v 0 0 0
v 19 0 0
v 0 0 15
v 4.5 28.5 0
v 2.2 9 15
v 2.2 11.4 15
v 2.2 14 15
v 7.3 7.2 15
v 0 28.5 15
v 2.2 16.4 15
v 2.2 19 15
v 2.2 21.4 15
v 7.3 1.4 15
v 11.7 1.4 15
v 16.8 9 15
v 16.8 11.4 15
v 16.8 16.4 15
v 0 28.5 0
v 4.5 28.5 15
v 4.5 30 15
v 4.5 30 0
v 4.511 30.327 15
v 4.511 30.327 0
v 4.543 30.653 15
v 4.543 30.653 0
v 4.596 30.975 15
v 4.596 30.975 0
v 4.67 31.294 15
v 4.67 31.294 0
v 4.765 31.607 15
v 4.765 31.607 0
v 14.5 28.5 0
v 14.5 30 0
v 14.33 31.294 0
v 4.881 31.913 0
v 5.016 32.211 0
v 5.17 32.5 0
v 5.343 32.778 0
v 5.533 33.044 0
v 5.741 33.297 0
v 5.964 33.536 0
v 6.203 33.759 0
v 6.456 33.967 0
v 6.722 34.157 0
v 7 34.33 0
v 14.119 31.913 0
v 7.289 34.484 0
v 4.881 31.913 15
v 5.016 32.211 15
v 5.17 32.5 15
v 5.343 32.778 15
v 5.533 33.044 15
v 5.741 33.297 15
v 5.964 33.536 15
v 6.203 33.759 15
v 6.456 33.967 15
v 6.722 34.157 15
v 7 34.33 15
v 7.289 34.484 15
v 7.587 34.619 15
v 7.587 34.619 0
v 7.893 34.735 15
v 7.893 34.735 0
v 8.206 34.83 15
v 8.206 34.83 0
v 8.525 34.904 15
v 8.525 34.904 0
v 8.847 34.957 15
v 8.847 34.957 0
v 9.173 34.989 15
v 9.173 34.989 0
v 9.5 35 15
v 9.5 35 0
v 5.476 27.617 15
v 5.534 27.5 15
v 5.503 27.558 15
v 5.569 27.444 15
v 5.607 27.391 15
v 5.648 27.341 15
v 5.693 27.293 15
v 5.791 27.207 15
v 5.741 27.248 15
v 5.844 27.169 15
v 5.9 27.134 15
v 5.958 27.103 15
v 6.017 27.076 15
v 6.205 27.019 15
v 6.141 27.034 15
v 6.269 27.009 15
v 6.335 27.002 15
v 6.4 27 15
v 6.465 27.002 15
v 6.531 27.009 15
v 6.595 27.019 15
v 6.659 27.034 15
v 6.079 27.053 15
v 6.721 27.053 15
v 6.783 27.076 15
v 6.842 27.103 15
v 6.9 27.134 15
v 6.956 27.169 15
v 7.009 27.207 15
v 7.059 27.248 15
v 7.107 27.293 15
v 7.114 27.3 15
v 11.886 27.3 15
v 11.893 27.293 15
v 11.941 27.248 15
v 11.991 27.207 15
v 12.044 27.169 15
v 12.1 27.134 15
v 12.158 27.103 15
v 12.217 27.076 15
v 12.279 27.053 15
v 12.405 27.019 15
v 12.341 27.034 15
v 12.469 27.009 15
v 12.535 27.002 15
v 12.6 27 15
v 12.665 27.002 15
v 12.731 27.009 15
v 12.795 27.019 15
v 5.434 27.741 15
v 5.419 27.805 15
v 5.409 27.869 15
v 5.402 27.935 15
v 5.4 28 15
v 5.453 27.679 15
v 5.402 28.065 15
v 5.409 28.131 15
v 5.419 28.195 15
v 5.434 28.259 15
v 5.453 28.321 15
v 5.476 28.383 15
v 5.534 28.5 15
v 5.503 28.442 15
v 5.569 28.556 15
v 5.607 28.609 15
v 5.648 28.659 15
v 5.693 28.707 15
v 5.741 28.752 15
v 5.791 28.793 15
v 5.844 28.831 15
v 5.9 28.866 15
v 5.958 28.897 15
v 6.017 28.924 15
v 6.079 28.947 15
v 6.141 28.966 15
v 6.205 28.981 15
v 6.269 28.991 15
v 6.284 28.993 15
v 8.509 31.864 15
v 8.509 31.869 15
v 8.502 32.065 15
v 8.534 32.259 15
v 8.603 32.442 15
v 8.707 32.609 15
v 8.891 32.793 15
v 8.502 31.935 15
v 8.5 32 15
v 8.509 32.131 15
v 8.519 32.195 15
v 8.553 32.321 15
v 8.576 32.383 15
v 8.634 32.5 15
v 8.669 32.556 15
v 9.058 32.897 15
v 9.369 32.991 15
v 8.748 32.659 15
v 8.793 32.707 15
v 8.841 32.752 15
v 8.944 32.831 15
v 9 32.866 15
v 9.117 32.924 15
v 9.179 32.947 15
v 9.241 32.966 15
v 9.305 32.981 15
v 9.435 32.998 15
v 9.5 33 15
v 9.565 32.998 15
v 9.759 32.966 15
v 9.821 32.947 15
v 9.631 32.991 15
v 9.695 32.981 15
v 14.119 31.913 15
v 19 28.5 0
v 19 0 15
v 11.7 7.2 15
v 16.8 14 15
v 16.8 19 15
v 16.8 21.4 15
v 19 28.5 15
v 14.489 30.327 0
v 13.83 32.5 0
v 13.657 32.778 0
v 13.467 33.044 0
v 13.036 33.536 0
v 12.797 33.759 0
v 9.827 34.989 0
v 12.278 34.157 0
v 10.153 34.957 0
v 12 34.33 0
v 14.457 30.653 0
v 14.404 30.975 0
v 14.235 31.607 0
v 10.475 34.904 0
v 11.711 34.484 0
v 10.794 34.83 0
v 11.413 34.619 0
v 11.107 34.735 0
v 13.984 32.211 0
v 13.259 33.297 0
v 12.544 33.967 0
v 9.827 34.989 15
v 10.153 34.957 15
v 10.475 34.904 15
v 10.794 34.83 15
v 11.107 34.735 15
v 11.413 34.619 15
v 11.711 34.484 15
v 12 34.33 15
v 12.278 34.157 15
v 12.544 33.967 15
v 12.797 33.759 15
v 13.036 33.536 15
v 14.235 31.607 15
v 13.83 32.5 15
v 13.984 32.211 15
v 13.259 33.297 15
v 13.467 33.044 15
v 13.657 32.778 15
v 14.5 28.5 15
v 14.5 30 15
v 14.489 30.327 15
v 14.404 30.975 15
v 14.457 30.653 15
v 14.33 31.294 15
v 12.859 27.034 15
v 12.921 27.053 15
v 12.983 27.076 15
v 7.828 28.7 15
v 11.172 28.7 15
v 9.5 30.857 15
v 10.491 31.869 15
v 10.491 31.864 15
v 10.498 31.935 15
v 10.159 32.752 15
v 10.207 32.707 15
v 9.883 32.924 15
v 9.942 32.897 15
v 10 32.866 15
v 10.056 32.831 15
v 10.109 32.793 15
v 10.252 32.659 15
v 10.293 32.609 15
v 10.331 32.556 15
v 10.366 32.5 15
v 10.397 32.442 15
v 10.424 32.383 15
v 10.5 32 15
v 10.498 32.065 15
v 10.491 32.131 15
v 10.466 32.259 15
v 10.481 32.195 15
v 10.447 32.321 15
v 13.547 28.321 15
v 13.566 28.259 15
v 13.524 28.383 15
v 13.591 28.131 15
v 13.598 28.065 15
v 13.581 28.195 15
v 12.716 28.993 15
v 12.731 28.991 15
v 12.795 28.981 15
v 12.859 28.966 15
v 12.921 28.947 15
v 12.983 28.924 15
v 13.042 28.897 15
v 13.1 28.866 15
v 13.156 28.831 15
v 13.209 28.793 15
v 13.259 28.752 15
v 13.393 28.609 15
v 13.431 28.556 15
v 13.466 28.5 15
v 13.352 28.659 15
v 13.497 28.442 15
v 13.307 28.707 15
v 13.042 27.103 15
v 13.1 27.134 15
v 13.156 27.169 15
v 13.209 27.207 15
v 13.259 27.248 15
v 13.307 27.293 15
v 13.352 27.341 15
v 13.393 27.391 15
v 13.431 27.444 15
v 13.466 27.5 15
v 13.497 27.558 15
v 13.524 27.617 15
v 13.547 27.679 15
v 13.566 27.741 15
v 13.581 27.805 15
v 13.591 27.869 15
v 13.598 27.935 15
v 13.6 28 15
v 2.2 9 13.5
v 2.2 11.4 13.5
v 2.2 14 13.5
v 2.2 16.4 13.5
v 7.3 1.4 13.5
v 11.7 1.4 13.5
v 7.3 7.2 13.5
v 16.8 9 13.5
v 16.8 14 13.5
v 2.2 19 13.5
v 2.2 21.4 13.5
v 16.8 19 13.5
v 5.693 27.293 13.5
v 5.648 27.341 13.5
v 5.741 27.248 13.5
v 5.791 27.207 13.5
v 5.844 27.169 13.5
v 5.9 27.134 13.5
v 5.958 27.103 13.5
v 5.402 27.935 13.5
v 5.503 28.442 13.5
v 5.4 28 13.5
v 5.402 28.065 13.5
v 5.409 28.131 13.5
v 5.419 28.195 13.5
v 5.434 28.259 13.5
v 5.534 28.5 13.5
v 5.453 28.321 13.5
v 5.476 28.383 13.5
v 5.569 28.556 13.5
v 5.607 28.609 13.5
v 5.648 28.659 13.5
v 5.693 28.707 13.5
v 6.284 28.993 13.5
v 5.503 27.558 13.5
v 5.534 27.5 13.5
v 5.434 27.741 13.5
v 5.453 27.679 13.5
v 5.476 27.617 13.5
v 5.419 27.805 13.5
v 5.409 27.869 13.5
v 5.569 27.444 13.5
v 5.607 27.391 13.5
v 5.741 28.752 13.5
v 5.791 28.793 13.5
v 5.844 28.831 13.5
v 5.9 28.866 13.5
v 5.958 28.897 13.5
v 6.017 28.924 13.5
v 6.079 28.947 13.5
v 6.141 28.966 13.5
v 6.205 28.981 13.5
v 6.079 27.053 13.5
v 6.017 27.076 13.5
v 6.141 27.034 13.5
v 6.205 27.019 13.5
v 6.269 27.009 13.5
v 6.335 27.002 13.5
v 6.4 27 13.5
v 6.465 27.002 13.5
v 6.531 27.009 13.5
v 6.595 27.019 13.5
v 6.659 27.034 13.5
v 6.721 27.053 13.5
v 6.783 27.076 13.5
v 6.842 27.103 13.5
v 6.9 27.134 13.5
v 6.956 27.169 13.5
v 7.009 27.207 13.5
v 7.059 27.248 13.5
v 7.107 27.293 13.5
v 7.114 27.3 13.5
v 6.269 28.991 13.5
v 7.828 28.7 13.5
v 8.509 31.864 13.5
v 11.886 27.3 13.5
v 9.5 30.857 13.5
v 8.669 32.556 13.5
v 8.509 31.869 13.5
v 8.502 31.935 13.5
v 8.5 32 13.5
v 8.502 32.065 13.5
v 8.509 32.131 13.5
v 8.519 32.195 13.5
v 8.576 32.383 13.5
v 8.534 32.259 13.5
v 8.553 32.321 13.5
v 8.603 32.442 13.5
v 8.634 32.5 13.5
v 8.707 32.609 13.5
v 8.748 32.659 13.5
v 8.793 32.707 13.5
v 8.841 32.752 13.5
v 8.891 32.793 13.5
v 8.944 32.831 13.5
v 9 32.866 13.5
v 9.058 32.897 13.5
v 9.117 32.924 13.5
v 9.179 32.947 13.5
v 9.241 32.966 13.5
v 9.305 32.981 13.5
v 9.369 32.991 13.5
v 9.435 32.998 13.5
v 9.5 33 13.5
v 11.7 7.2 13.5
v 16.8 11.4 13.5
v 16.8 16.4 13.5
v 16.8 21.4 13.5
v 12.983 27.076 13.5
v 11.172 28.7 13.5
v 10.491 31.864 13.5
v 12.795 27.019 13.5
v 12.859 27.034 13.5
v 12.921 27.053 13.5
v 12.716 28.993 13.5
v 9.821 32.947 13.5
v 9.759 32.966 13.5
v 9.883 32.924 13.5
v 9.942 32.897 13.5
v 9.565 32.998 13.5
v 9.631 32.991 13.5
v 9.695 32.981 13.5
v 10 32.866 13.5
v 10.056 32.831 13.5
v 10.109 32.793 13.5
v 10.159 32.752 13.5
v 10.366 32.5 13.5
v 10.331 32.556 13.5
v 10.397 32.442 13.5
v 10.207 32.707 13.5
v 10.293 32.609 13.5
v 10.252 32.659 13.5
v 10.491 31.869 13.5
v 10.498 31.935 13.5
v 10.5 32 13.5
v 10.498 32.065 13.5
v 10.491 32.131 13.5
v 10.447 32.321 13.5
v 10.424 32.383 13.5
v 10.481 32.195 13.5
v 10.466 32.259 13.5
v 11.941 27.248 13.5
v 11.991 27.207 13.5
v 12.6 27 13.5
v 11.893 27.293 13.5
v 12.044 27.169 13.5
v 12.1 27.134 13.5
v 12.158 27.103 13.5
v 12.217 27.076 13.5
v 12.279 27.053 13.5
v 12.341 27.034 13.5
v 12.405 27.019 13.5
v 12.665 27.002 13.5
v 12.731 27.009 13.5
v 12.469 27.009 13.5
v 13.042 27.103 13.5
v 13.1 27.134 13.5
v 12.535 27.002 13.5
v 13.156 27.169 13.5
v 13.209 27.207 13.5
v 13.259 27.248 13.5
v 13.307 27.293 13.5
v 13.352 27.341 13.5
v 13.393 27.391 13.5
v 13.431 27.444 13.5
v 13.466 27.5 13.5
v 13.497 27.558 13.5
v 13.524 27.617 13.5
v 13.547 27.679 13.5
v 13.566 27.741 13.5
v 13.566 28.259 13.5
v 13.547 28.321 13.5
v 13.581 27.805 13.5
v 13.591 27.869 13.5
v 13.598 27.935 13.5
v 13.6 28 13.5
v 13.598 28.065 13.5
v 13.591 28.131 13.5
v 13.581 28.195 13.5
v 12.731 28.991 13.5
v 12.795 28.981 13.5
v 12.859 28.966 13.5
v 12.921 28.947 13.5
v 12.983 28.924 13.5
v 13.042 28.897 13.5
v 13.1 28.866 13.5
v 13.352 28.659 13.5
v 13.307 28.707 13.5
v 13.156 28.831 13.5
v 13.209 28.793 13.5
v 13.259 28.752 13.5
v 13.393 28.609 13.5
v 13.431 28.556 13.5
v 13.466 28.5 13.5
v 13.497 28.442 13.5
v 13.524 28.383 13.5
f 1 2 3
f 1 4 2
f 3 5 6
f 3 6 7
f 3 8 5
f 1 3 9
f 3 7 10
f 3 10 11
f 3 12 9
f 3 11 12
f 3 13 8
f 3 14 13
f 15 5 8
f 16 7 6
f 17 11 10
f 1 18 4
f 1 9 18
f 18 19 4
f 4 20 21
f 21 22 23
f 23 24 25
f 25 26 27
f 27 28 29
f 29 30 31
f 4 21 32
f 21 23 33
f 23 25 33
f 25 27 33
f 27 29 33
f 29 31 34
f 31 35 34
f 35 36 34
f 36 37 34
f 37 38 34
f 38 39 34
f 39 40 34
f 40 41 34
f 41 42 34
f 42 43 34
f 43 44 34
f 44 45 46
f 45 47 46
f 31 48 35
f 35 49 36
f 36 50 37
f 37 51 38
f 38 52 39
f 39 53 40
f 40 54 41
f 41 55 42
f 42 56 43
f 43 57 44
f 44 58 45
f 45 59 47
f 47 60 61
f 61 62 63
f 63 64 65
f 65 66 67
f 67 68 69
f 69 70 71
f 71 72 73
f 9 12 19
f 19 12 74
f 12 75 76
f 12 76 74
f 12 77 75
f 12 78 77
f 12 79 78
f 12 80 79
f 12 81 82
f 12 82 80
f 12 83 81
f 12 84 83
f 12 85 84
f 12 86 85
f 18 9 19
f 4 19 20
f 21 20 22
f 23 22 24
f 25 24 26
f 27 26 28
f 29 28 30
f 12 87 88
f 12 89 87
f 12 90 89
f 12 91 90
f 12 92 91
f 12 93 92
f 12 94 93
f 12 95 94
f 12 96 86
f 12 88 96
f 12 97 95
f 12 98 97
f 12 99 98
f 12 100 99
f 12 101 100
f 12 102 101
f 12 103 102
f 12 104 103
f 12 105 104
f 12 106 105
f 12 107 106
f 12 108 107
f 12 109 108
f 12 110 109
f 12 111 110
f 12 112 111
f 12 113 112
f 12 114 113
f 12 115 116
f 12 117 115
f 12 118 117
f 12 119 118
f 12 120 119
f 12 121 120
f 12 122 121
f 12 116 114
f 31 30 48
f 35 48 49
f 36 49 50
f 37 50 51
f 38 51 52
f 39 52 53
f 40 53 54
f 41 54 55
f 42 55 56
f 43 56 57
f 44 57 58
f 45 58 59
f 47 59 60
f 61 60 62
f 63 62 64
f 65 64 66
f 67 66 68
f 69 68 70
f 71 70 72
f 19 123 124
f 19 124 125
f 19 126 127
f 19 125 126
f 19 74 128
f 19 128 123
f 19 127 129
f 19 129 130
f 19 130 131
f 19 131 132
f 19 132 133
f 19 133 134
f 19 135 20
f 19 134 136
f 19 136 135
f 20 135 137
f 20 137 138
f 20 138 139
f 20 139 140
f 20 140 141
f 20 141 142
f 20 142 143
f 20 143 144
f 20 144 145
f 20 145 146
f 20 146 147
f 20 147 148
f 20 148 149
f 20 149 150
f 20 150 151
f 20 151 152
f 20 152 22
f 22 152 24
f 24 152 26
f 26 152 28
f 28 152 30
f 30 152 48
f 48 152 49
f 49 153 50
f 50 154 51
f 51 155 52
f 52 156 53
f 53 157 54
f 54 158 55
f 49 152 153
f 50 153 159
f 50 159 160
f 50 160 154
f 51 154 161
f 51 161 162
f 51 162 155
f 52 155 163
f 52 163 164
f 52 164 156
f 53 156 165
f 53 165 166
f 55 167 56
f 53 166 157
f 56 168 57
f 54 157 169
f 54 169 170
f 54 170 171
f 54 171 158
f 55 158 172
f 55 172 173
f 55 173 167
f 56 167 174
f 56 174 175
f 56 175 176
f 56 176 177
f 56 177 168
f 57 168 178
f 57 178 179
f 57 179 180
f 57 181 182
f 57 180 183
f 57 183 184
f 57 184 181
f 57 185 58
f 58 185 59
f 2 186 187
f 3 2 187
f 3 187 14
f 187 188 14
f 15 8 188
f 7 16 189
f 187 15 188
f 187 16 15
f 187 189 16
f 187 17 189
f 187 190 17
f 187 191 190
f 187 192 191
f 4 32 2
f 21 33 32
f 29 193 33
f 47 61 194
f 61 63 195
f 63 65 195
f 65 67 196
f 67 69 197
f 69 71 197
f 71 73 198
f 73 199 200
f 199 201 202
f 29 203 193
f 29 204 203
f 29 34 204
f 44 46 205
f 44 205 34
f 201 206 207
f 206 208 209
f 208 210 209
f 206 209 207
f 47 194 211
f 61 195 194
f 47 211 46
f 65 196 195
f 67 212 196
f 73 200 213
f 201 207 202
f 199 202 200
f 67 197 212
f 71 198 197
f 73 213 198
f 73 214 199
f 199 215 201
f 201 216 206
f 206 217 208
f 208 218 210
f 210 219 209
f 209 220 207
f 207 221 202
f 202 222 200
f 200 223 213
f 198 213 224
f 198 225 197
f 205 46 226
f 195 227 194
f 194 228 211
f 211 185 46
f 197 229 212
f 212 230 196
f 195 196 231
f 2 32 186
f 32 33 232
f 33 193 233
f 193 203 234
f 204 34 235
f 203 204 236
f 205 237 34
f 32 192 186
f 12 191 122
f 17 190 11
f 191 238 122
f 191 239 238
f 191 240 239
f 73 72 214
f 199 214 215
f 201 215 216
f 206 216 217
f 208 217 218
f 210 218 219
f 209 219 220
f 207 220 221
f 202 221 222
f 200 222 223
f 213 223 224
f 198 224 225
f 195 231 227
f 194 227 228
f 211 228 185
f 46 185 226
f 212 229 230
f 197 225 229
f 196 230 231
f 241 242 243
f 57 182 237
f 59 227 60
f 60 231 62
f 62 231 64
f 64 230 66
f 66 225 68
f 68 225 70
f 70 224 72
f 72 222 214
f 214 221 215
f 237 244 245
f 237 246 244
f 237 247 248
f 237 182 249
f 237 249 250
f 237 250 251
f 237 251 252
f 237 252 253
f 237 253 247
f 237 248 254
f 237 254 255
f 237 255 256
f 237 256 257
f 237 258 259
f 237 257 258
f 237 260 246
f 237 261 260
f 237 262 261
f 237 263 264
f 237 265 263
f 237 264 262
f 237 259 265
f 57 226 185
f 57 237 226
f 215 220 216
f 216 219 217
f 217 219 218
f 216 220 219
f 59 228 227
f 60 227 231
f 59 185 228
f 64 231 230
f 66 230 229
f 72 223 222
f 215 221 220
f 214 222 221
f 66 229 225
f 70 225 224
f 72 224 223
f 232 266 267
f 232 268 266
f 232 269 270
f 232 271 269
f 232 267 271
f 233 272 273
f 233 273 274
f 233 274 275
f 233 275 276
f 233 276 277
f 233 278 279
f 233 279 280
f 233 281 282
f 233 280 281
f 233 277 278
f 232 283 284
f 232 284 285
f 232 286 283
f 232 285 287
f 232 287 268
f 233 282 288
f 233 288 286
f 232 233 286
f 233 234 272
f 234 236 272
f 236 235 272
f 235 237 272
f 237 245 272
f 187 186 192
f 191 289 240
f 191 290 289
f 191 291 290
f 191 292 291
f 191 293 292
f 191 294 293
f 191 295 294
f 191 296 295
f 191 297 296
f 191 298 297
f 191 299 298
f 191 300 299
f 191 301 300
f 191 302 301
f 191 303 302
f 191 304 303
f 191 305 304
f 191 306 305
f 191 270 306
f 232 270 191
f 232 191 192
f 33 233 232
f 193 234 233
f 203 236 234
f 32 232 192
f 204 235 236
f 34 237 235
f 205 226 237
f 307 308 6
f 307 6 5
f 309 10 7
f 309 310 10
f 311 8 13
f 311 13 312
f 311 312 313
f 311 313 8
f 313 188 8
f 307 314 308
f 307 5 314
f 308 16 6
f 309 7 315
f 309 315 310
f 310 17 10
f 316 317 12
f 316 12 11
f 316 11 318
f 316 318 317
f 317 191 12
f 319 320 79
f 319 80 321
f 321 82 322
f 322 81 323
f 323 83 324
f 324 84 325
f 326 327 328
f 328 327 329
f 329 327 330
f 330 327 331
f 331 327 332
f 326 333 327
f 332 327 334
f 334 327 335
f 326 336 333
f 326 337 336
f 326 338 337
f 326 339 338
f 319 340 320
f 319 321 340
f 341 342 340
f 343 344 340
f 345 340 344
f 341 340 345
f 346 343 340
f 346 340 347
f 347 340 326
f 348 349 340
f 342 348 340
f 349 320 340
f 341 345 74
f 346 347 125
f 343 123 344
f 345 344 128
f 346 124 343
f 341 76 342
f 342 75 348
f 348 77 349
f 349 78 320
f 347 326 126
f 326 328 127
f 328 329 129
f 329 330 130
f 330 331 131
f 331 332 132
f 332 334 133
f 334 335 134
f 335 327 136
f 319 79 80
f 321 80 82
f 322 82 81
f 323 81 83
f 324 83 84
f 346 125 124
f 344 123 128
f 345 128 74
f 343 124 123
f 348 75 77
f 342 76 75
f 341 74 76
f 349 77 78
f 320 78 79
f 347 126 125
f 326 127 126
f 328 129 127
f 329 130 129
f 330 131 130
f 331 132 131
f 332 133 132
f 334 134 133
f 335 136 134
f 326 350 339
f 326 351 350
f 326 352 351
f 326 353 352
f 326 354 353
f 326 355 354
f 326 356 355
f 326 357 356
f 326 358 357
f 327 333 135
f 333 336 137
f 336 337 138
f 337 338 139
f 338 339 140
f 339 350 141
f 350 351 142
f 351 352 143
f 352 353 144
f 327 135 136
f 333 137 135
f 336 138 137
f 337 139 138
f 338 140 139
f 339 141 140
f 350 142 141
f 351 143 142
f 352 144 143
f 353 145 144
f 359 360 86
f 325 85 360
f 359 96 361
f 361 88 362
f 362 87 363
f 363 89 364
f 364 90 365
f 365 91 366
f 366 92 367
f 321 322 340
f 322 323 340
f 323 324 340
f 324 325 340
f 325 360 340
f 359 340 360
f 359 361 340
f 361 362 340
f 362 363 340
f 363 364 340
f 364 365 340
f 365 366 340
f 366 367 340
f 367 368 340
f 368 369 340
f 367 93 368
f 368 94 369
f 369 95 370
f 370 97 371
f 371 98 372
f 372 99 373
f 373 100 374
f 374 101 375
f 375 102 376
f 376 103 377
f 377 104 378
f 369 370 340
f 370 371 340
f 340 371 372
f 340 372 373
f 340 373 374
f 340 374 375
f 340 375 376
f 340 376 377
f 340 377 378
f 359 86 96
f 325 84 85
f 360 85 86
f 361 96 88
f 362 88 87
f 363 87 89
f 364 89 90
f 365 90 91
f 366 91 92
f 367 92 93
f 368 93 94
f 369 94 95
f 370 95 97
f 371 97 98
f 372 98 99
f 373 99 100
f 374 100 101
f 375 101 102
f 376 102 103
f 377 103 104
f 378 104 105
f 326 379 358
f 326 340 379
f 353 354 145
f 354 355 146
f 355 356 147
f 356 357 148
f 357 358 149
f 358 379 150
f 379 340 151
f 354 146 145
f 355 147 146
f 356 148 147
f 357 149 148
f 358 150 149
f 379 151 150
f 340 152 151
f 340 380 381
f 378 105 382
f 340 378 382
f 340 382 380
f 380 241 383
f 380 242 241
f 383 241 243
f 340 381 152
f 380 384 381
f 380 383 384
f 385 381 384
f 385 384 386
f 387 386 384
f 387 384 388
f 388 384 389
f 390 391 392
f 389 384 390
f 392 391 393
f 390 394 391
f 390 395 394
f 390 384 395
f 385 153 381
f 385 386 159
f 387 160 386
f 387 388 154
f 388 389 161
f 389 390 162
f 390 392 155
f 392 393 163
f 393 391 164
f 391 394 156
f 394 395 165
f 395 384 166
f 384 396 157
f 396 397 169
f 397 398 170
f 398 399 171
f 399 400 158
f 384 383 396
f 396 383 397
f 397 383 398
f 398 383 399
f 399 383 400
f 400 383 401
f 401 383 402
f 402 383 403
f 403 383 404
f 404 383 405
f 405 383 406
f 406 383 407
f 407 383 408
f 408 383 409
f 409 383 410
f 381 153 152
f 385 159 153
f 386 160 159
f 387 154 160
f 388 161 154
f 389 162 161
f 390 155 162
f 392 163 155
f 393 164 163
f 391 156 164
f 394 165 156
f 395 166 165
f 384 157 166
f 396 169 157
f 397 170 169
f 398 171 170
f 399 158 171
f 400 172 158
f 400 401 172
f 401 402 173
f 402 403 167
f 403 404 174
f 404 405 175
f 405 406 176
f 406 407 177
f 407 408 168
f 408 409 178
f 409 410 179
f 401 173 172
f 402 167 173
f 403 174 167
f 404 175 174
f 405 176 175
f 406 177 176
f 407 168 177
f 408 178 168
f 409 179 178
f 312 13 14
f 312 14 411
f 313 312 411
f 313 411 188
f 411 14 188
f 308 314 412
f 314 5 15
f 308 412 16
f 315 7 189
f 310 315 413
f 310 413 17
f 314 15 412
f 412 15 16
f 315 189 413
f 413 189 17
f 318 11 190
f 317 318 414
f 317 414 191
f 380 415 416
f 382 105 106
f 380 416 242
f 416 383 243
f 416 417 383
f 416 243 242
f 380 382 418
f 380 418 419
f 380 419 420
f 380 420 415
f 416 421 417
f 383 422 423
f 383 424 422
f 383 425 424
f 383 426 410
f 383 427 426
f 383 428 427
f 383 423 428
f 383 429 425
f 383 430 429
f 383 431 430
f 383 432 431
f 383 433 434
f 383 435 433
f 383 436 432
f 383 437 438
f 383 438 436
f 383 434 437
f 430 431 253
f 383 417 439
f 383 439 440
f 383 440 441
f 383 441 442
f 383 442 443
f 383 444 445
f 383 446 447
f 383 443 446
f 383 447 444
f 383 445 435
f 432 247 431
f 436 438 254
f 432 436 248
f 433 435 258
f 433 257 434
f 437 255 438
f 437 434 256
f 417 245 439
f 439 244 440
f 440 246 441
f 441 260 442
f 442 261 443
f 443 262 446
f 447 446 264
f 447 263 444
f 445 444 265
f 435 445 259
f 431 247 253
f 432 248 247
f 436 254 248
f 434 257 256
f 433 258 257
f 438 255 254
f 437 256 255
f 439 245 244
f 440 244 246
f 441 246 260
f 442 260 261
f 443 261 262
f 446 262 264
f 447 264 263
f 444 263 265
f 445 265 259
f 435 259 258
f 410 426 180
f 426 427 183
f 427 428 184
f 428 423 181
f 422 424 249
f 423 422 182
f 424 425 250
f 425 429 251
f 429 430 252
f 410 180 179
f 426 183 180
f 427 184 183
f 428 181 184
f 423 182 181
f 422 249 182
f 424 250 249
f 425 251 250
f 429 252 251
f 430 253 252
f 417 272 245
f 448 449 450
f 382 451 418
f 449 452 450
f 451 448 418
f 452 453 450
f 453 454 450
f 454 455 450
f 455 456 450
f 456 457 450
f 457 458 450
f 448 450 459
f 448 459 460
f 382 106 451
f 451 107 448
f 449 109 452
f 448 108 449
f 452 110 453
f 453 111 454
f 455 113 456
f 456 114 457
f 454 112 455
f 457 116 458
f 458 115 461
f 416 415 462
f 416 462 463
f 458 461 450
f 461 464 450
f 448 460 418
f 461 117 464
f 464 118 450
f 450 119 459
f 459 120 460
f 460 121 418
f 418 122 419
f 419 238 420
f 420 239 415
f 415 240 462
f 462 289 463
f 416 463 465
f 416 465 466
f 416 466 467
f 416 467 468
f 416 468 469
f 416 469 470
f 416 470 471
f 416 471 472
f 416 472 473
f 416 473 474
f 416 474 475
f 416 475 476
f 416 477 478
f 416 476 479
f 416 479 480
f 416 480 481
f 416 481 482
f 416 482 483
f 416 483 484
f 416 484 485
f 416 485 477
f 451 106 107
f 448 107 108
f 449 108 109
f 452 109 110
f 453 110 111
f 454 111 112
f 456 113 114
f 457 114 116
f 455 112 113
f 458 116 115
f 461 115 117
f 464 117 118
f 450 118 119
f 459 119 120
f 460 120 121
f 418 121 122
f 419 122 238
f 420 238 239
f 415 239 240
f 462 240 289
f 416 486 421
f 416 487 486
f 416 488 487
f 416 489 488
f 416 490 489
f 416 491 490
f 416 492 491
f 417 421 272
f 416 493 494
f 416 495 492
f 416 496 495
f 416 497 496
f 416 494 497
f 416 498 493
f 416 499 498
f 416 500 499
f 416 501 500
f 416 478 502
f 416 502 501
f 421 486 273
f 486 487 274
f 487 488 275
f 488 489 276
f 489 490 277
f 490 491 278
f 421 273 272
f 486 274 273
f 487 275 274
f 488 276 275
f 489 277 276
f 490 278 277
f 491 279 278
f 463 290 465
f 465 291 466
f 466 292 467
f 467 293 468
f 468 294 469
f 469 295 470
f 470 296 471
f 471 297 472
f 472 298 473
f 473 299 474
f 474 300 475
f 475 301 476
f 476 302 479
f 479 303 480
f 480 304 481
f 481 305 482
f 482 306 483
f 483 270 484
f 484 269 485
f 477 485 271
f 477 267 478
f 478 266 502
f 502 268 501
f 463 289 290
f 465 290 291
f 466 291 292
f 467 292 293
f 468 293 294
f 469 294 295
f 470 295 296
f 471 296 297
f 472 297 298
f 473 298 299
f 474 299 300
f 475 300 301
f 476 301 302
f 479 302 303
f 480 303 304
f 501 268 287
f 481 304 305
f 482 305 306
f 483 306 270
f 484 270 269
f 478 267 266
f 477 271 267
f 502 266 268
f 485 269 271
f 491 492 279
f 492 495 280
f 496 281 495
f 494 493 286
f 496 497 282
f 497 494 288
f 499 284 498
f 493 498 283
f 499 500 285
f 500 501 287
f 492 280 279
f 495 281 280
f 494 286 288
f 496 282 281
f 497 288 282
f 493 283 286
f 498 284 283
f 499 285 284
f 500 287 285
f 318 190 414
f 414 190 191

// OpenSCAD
// Building miniatures — Tech, AI & Digital
// Units: millimetres. X = width; Y = facade height; Z = depth.
// Print flat on the back at Z=0. Front Z=15; recesses are 1.5 mm deep.
$fn=96;
depth=15;
recess=1.5;
module rect(x,y,w,h) { translate([x,y]) square([w,h]); }
module disc(x,y,r) { translate([x,y]) circle(r=r); }
module rr(x,y,w,h,r=1) { hull() for(a=[x+r,x+w-r],b=[y+r,y+h-r]) disc(a,b,r); }
module stroke(a,b,w=1.4) { hull() {disc(a[0],a[1],w/2);disc(b[0],b[1],w/2);} }
module ring(x,y,r,w=1.4) { difference(){disc(x,y,r);disc(x,y,r-w);} }
module framed(x,y,w,h,t=1.4) { difference(){rect(x,y,w,h);rect(x+t,y+t,w-2*t,h-2*t);} }
module arrow(a,b,w=1.5) { v=b-a; u=v/norm(v); n=[-u[1],u[0]]; tip=b; neck=b-u*2.8; stroke(a,neck,w); polygon([tip,neck+n*1.9,neck-n*1.9]); }
module building(){difference(){linear_extrude(height=depth) silhouette();translate([0,0,depth-recess]) linear_extrude(height=recess+0.2) details();}}
building();

module silhouette(){union(){rect(0,0,19,28.5);rect(4.5,27,10,3);disc(9.5,30,5);}}
module details(){
 rect(7.3,1.4,4.4,5.8);
 for(y=[9,14,19]) rect(2.2,y,14.6,2.4);
 stroke([6.4,28],[12.6,28]);stroke([6.4,28],[9.5,32]);stroke([12.6,28],[9.5,32]);
 for(p=[[6.4,28],[12.6,28],[9.5,32]]) disc(p[0],p[1],1.0);
}
